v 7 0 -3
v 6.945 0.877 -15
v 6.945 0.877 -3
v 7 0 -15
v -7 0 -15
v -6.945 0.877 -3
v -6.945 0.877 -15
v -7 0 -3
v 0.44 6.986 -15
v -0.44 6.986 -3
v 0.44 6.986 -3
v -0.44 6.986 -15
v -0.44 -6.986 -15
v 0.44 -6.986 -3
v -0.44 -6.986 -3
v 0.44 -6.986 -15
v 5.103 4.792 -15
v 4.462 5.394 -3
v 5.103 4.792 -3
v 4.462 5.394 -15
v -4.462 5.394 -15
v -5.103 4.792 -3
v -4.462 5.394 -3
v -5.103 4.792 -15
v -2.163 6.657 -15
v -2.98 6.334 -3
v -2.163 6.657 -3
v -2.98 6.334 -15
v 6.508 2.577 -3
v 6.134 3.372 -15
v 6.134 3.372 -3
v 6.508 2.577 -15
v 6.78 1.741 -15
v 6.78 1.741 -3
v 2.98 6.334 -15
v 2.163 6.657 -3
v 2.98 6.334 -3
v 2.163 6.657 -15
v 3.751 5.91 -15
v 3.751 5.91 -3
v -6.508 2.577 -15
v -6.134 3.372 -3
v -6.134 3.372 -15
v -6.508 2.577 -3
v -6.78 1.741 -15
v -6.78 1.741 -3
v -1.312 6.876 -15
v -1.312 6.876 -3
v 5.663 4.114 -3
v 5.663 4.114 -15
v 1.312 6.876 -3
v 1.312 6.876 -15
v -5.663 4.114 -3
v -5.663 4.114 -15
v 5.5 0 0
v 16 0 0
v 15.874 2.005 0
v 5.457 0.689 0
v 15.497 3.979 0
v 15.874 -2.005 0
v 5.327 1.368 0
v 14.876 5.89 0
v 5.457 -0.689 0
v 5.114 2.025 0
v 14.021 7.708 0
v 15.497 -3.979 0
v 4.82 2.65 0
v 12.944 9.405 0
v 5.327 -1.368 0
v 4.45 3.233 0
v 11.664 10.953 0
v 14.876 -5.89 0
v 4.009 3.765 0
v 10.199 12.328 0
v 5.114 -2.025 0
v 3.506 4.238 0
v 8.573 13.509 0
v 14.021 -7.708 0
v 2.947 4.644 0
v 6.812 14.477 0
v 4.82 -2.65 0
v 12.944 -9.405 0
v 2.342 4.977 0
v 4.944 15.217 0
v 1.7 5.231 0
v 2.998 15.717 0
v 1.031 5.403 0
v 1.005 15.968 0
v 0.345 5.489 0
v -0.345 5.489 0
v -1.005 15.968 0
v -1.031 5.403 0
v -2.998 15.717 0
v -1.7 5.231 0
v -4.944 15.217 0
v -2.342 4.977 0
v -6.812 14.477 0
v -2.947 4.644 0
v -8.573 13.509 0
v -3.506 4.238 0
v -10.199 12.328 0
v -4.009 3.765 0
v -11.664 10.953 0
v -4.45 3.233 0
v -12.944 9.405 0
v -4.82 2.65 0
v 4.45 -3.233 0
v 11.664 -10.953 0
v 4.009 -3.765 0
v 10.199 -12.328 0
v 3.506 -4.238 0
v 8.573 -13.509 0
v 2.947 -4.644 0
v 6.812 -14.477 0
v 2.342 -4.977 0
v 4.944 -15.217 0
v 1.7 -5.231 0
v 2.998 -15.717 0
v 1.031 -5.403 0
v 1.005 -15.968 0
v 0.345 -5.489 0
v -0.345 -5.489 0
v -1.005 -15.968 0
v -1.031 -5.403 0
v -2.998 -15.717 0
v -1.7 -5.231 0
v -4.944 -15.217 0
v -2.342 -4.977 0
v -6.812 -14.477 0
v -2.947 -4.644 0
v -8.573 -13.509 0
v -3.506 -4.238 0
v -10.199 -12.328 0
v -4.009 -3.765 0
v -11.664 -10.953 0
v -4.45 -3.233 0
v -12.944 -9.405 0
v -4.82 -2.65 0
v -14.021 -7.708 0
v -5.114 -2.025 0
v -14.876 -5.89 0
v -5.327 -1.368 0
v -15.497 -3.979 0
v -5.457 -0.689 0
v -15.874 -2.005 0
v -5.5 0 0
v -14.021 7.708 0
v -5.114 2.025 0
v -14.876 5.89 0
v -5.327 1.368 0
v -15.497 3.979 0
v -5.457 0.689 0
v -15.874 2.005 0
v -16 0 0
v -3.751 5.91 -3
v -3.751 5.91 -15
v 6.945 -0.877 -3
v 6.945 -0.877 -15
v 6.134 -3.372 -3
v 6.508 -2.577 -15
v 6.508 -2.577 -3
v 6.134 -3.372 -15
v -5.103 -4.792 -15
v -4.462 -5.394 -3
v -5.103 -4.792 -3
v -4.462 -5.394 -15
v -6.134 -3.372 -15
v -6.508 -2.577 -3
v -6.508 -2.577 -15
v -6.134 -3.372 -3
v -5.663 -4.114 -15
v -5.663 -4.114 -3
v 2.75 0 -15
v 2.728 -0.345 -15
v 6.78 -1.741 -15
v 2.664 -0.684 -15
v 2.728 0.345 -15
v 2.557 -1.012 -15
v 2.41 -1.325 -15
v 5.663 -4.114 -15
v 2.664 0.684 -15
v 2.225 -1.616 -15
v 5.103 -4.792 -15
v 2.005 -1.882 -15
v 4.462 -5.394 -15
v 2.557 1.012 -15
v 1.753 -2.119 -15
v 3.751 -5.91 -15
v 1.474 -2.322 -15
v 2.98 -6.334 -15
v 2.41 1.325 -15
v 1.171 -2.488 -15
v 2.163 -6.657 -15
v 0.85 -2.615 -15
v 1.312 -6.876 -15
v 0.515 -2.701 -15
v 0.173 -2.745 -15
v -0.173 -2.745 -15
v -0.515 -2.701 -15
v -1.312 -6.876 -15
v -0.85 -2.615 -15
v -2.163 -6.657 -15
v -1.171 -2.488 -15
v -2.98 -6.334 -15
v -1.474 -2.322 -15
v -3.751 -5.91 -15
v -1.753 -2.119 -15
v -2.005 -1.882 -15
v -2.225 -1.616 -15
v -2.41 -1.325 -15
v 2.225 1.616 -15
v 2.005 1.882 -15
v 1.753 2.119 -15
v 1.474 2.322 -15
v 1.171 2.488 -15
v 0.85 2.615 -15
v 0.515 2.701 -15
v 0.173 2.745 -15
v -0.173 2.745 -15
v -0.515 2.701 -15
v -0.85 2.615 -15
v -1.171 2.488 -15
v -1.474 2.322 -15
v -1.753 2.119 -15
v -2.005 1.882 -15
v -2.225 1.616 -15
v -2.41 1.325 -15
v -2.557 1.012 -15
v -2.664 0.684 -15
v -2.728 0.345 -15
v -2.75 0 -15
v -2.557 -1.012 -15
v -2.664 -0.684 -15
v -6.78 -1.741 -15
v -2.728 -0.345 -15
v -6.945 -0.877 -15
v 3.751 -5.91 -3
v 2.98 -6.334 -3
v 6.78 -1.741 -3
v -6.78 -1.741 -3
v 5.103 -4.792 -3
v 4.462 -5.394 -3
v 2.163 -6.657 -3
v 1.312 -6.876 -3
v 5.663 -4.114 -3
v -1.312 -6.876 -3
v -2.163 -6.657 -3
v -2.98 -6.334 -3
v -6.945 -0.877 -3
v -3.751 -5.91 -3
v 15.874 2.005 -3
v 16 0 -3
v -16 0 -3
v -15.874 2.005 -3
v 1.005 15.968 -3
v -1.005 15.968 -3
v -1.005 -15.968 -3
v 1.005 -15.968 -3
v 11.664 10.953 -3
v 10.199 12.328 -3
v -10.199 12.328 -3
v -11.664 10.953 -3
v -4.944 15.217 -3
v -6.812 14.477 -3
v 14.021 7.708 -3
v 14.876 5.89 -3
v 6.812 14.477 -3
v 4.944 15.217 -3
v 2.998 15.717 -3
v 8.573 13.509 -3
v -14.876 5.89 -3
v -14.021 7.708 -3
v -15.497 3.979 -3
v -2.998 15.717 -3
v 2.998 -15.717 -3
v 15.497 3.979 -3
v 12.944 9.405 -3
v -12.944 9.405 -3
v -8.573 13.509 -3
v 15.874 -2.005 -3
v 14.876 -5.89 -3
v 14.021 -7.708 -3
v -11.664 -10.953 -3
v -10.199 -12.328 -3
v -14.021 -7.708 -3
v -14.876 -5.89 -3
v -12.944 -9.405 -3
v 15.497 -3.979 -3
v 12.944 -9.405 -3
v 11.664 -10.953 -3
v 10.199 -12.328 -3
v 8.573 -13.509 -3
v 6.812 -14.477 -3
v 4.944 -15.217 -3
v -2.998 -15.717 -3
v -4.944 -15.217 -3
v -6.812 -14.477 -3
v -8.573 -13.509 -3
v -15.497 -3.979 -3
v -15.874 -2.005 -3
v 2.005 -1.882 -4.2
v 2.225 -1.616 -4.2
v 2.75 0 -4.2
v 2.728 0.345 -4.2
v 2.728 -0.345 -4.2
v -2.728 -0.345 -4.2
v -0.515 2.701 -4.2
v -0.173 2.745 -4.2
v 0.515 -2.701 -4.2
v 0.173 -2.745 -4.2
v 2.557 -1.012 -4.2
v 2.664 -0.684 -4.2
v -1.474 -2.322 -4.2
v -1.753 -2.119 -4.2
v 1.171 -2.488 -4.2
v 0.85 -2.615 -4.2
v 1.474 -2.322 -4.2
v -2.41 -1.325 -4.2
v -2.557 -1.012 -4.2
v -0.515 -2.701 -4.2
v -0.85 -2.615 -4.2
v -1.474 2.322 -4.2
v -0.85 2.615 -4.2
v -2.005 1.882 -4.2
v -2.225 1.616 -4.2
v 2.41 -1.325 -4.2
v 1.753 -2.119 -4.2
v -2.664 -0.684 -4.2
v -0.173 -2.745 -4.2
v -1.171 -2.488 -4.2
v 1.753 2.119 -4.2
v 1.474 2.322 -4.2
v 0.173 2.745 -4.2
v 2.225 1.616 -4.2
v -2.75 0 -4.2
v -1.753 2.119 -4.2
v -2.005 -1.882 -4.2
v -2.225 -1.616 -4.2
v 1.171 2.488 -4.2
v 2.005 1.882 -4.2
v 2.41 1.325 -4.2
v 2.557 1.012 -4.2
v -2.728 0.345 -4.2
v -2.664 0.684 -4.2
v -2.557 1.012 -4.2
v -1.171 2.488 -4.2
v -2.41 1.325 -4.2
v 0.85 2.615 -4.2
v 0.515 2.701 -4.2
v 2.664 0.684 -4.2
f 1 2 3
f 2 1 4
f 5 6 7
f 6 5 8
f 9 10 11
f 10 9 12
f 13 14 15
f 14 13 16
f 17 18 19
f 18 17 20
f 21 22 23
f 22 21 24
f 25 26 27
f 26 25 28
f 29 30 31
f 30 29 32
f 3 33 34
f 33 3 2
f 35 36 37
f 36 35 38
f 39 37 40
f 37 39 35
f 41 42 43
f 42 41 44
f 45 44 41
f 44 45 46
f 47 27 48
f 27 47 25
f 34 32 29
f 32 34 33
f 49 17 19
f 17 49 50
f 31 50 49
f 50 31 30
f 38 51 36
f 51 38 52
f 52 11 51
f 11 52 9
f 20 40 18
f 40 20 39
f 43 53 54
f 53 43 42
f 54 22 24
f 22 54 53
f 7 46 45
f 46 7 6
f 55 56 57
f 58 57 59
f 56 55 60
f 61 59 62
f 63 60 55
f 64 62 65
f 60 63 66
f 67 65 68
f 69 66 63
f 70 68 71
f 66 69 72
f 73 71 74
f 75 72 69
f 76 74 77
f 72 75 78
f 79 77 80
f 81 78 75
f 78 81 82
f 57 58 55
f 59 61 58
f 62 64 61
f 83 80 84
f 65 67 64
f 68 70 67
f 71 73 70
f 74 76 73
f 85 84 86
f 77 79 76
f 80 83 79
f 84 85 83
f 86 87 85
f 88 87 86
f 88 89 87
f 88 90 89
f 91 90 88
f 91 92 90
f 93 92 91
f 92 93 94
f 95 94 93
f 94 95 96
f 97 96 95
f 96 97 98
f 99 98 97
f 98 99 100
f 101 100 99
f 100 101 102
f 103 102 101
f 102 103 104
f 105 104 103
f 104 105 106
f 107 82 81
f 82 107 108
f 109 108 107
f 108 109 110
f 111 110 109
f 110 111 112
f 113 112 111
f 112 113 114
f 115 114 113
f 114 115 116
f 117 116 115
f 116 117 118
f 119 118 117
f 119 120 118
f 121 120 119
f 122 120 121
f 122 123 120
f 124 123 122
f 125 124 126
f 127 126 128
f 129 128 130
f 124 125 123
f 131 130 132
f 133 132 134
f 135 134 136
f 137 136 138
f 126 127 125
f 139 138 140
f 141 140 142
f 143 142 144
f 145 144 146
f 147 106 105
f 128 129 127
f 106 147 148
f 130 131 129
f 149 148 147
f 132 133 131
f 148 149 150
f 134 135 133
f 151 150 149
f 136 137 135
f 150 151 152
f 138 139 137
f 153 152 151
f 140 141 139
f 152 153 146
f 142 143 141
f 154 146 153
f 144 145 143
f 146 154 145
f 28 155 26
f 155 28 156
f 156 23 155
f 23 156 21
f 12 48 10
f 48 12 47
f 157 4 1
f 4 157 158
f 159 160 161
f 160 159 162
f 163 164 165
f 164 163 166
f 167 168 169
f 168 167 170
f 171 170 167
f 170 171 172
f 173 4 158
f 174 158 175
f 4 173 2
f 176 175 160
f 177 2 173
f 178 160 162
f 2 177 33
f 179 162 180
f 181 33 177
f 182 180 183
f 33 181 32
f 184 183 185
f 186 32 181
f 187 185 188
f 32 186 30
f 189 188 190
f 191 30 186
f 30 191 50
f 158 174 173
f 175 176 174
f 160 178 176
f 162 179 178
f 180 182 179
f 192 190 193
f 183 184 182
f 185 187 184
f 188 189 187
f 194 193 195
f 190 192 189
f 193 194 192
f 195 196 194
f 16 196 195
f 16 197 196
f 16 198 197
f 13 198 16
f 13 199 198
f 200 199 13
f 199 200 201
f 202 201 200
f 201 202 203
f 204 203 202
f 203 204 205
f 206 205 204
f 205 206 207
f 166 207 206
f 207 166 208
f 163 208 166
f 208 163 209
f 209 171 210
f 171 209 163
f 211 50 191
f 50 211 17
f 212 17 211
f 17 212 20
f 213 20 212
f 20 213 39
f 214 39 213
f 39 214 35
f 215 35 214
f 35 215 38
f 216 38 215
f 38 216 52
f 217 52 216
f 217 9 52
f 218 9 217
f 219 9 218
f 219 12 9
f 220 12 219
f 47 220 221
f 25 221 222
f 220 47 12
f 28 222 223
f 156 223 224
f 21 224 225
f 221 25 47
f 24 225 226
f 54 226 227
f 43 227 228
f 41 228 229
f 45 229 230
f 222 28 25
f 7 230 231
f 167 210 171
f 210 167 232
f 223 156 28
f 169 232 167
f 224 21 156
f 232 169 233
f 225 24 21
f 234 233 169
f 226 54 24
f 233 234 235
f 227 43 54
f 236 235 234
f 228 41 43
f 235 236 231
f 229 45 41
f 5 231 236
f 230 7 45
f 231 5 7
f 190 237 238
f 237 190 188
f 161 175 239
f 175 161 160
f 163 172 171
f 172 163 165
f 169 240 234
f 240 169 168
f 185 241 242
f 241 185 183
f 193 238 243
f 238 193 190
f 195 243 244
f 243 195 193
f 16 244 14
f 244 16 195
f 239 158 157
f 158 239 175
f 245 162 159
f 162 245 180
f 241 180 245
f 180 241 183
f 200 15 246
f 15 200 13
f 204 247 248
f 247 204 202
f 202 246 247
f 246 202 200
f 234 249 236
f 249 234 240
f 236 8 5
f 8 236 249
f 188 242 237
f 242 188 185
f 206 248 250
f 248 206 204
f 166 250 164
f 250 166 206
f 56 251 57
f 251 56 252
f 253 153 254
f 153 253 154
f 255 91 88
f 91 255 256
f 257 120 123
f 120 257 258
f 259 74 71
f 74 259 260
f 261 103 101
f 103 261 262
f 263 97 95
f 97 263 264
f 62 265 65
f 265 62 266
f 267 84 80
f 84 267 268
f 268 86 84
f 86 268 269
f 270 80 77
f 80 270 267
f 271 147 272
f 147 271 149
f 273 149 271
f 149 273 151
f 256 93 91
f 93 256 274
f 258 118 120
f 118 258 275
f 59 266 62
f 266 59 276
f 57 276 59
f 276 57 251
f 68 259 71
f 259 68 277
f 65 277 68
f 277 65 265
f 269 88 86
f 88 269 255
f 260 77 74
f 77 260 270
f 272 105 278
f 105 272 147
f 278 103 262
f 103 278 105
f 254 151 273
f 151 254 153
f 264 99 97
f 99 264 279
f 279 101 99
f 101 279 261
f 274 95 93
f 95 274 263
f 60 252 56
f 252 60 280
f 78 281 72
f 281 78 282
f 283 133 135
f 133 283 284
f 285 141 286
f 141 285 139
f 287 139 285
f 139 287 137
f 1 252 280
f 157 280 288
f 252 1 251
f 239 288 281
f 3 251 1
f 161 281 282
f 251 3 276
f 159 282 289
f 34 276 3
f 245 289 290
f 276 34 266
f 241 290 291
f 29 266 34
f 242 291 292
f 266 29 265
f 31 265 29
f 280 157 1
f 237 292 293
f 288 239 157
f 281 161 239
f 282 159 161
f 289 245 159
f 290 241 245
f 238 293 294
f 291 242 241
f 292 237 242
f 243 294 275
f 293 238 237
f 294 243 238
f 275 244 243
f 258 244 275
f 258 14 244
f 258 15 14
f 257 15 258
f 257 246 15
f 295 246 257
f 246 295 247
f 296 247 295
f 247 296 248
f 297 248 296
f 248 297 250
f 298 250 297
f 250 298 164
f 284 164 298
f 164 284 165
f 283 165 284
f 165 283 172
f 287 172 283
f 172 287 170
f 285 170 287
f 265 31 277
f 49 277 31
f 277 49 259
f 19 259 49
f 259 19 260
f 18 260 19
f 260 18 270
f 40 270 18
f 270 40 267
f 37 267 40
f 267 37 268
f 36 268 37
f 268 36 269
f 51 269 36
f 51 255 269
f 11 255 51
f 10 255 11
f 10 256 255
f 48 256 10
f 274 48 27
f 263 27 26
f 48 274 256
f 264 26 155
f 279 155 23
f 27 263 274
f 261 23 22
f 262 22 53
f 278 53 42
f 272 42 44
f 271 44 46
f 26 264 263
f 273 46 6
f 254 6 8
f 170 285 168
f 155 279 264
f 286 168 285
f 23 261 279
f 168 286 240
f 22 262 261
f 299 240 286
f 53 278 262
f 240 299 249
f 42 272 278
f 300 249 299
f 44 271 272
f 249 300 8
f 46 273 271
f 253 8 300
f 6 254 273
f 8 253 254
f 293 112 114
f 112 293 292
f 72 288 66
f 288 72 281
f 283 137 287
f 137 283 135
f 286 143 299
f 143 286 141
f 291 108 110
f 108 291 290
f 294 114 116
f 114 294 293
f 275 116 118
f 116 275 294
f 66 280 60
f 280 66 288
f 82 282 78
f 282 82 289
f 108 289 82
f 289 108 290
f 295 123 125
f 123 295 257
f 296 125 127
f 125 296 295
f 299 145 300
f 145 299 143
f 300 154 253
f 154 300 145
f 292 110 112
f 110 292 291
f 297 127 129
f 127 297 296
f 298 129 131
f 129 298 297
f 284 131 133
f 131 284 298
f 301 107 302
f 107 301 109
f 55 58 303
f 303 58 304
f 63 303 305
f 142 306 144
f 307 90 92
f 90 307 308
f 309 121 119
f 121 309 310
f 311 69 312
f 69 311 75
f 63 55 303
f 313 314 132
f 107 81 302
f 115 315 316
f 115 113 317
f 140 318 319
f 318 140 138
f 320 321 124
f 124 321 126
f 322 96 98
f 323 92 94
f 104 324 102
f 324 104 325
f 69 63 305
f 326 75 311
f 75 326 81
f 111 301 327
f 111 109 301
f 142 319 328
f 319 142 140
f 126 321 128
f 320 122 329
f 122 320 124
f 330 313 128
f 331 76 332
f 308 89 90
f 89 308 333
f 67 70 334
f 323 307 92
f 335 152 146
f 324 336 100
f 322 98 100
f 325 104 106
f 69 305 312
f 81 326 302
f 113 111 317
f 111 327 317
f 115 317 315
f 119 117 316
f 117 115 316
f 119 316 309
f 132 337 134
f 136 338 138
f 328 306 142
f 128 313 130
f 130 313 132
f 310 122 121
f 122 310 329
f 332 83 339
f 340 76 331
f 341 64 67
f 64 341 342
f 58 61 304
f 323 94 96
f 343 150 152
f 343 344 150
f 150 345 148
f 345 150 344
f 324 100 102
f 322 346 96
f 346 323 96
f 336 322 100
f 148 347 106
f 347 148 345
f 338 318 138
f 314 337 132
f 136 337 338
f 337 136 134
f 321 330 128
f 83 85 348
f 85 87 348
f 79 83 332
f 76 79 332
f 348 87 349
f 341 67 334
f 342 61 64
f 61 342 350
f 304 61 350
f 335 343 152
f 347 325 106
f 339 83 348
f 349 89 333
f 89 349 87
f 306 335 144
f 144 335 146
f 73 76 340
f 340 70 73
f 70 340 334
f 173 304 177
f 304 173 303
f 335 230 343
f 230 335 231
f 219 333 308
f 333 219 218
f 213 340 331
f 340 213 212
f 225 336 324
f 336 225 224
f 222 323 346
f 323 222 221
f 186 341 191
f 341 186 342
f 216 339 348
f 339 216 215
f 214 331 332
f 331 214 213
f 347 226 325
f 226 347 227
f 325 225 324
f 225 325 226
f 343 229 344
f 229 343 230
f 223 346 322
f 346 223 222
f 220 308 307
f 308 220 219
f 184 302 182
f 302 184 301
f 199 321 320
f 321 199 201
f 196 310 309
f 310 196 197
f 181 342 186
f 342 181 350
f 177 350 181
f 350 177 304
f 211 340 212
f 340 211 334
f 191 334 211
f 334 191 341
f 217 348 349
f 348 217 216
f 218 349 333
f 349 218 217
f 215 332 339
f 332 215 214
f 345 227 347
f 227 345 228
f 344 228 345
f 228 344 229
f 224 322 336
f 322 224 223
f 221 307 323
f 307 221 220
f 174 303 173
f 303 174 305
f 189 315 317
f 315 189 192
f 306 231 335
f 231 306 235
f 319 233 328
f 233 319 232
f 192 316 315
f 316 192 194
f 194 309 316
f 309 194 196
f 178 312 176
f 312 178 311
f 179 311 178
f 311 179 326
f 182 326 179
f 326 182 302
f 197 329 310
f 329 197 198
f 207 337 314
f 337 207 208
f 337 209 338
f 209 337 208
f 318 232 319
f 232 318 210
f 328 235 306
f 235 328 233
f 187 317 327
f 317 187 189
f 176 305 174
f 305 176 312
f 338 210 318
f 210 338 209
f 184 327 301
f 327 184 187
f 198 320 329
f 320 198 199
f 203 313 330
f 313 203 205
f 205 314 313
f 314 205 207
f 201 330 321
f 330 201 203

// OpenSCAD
$fn = 50;


difference() {
	union() {
		translate(v = [0, 0, -15.0000000000]) {
			cylinder(h = 15, r = 7.0000000000);
		}
		translate(v = [0, 0, -3.0000000000]) {
			cylinder(h = 3, r = 16.0000000000);
		}
	}
	union() {
		translate(v = [0, 0, 0]) {
			rotate(a = [0, 0, 0]) {
				difference() {
					union() {
						#translate(v = [0, 0, -15.0000000000]) {
							cylinder(h = 15, r = 2.2500000000);
						}
						#translate(v = [0, 0, -4.2000000000]) {
							cylinder(h = 4.2000000000, r1 = 2.7500000000, r2 = 5.5000000000);
						}
						#translate(v = [0, 0, -15.0000000000]) {
							cylinder(h = 15, r = 2.7500000000);
						}
						#translate(v = [0, 0, -15.0000000000]) {
							cylinder(h = 15, r = 2.2500000000);
						}
					}
					union();
				}
			}
		}
	}
}
